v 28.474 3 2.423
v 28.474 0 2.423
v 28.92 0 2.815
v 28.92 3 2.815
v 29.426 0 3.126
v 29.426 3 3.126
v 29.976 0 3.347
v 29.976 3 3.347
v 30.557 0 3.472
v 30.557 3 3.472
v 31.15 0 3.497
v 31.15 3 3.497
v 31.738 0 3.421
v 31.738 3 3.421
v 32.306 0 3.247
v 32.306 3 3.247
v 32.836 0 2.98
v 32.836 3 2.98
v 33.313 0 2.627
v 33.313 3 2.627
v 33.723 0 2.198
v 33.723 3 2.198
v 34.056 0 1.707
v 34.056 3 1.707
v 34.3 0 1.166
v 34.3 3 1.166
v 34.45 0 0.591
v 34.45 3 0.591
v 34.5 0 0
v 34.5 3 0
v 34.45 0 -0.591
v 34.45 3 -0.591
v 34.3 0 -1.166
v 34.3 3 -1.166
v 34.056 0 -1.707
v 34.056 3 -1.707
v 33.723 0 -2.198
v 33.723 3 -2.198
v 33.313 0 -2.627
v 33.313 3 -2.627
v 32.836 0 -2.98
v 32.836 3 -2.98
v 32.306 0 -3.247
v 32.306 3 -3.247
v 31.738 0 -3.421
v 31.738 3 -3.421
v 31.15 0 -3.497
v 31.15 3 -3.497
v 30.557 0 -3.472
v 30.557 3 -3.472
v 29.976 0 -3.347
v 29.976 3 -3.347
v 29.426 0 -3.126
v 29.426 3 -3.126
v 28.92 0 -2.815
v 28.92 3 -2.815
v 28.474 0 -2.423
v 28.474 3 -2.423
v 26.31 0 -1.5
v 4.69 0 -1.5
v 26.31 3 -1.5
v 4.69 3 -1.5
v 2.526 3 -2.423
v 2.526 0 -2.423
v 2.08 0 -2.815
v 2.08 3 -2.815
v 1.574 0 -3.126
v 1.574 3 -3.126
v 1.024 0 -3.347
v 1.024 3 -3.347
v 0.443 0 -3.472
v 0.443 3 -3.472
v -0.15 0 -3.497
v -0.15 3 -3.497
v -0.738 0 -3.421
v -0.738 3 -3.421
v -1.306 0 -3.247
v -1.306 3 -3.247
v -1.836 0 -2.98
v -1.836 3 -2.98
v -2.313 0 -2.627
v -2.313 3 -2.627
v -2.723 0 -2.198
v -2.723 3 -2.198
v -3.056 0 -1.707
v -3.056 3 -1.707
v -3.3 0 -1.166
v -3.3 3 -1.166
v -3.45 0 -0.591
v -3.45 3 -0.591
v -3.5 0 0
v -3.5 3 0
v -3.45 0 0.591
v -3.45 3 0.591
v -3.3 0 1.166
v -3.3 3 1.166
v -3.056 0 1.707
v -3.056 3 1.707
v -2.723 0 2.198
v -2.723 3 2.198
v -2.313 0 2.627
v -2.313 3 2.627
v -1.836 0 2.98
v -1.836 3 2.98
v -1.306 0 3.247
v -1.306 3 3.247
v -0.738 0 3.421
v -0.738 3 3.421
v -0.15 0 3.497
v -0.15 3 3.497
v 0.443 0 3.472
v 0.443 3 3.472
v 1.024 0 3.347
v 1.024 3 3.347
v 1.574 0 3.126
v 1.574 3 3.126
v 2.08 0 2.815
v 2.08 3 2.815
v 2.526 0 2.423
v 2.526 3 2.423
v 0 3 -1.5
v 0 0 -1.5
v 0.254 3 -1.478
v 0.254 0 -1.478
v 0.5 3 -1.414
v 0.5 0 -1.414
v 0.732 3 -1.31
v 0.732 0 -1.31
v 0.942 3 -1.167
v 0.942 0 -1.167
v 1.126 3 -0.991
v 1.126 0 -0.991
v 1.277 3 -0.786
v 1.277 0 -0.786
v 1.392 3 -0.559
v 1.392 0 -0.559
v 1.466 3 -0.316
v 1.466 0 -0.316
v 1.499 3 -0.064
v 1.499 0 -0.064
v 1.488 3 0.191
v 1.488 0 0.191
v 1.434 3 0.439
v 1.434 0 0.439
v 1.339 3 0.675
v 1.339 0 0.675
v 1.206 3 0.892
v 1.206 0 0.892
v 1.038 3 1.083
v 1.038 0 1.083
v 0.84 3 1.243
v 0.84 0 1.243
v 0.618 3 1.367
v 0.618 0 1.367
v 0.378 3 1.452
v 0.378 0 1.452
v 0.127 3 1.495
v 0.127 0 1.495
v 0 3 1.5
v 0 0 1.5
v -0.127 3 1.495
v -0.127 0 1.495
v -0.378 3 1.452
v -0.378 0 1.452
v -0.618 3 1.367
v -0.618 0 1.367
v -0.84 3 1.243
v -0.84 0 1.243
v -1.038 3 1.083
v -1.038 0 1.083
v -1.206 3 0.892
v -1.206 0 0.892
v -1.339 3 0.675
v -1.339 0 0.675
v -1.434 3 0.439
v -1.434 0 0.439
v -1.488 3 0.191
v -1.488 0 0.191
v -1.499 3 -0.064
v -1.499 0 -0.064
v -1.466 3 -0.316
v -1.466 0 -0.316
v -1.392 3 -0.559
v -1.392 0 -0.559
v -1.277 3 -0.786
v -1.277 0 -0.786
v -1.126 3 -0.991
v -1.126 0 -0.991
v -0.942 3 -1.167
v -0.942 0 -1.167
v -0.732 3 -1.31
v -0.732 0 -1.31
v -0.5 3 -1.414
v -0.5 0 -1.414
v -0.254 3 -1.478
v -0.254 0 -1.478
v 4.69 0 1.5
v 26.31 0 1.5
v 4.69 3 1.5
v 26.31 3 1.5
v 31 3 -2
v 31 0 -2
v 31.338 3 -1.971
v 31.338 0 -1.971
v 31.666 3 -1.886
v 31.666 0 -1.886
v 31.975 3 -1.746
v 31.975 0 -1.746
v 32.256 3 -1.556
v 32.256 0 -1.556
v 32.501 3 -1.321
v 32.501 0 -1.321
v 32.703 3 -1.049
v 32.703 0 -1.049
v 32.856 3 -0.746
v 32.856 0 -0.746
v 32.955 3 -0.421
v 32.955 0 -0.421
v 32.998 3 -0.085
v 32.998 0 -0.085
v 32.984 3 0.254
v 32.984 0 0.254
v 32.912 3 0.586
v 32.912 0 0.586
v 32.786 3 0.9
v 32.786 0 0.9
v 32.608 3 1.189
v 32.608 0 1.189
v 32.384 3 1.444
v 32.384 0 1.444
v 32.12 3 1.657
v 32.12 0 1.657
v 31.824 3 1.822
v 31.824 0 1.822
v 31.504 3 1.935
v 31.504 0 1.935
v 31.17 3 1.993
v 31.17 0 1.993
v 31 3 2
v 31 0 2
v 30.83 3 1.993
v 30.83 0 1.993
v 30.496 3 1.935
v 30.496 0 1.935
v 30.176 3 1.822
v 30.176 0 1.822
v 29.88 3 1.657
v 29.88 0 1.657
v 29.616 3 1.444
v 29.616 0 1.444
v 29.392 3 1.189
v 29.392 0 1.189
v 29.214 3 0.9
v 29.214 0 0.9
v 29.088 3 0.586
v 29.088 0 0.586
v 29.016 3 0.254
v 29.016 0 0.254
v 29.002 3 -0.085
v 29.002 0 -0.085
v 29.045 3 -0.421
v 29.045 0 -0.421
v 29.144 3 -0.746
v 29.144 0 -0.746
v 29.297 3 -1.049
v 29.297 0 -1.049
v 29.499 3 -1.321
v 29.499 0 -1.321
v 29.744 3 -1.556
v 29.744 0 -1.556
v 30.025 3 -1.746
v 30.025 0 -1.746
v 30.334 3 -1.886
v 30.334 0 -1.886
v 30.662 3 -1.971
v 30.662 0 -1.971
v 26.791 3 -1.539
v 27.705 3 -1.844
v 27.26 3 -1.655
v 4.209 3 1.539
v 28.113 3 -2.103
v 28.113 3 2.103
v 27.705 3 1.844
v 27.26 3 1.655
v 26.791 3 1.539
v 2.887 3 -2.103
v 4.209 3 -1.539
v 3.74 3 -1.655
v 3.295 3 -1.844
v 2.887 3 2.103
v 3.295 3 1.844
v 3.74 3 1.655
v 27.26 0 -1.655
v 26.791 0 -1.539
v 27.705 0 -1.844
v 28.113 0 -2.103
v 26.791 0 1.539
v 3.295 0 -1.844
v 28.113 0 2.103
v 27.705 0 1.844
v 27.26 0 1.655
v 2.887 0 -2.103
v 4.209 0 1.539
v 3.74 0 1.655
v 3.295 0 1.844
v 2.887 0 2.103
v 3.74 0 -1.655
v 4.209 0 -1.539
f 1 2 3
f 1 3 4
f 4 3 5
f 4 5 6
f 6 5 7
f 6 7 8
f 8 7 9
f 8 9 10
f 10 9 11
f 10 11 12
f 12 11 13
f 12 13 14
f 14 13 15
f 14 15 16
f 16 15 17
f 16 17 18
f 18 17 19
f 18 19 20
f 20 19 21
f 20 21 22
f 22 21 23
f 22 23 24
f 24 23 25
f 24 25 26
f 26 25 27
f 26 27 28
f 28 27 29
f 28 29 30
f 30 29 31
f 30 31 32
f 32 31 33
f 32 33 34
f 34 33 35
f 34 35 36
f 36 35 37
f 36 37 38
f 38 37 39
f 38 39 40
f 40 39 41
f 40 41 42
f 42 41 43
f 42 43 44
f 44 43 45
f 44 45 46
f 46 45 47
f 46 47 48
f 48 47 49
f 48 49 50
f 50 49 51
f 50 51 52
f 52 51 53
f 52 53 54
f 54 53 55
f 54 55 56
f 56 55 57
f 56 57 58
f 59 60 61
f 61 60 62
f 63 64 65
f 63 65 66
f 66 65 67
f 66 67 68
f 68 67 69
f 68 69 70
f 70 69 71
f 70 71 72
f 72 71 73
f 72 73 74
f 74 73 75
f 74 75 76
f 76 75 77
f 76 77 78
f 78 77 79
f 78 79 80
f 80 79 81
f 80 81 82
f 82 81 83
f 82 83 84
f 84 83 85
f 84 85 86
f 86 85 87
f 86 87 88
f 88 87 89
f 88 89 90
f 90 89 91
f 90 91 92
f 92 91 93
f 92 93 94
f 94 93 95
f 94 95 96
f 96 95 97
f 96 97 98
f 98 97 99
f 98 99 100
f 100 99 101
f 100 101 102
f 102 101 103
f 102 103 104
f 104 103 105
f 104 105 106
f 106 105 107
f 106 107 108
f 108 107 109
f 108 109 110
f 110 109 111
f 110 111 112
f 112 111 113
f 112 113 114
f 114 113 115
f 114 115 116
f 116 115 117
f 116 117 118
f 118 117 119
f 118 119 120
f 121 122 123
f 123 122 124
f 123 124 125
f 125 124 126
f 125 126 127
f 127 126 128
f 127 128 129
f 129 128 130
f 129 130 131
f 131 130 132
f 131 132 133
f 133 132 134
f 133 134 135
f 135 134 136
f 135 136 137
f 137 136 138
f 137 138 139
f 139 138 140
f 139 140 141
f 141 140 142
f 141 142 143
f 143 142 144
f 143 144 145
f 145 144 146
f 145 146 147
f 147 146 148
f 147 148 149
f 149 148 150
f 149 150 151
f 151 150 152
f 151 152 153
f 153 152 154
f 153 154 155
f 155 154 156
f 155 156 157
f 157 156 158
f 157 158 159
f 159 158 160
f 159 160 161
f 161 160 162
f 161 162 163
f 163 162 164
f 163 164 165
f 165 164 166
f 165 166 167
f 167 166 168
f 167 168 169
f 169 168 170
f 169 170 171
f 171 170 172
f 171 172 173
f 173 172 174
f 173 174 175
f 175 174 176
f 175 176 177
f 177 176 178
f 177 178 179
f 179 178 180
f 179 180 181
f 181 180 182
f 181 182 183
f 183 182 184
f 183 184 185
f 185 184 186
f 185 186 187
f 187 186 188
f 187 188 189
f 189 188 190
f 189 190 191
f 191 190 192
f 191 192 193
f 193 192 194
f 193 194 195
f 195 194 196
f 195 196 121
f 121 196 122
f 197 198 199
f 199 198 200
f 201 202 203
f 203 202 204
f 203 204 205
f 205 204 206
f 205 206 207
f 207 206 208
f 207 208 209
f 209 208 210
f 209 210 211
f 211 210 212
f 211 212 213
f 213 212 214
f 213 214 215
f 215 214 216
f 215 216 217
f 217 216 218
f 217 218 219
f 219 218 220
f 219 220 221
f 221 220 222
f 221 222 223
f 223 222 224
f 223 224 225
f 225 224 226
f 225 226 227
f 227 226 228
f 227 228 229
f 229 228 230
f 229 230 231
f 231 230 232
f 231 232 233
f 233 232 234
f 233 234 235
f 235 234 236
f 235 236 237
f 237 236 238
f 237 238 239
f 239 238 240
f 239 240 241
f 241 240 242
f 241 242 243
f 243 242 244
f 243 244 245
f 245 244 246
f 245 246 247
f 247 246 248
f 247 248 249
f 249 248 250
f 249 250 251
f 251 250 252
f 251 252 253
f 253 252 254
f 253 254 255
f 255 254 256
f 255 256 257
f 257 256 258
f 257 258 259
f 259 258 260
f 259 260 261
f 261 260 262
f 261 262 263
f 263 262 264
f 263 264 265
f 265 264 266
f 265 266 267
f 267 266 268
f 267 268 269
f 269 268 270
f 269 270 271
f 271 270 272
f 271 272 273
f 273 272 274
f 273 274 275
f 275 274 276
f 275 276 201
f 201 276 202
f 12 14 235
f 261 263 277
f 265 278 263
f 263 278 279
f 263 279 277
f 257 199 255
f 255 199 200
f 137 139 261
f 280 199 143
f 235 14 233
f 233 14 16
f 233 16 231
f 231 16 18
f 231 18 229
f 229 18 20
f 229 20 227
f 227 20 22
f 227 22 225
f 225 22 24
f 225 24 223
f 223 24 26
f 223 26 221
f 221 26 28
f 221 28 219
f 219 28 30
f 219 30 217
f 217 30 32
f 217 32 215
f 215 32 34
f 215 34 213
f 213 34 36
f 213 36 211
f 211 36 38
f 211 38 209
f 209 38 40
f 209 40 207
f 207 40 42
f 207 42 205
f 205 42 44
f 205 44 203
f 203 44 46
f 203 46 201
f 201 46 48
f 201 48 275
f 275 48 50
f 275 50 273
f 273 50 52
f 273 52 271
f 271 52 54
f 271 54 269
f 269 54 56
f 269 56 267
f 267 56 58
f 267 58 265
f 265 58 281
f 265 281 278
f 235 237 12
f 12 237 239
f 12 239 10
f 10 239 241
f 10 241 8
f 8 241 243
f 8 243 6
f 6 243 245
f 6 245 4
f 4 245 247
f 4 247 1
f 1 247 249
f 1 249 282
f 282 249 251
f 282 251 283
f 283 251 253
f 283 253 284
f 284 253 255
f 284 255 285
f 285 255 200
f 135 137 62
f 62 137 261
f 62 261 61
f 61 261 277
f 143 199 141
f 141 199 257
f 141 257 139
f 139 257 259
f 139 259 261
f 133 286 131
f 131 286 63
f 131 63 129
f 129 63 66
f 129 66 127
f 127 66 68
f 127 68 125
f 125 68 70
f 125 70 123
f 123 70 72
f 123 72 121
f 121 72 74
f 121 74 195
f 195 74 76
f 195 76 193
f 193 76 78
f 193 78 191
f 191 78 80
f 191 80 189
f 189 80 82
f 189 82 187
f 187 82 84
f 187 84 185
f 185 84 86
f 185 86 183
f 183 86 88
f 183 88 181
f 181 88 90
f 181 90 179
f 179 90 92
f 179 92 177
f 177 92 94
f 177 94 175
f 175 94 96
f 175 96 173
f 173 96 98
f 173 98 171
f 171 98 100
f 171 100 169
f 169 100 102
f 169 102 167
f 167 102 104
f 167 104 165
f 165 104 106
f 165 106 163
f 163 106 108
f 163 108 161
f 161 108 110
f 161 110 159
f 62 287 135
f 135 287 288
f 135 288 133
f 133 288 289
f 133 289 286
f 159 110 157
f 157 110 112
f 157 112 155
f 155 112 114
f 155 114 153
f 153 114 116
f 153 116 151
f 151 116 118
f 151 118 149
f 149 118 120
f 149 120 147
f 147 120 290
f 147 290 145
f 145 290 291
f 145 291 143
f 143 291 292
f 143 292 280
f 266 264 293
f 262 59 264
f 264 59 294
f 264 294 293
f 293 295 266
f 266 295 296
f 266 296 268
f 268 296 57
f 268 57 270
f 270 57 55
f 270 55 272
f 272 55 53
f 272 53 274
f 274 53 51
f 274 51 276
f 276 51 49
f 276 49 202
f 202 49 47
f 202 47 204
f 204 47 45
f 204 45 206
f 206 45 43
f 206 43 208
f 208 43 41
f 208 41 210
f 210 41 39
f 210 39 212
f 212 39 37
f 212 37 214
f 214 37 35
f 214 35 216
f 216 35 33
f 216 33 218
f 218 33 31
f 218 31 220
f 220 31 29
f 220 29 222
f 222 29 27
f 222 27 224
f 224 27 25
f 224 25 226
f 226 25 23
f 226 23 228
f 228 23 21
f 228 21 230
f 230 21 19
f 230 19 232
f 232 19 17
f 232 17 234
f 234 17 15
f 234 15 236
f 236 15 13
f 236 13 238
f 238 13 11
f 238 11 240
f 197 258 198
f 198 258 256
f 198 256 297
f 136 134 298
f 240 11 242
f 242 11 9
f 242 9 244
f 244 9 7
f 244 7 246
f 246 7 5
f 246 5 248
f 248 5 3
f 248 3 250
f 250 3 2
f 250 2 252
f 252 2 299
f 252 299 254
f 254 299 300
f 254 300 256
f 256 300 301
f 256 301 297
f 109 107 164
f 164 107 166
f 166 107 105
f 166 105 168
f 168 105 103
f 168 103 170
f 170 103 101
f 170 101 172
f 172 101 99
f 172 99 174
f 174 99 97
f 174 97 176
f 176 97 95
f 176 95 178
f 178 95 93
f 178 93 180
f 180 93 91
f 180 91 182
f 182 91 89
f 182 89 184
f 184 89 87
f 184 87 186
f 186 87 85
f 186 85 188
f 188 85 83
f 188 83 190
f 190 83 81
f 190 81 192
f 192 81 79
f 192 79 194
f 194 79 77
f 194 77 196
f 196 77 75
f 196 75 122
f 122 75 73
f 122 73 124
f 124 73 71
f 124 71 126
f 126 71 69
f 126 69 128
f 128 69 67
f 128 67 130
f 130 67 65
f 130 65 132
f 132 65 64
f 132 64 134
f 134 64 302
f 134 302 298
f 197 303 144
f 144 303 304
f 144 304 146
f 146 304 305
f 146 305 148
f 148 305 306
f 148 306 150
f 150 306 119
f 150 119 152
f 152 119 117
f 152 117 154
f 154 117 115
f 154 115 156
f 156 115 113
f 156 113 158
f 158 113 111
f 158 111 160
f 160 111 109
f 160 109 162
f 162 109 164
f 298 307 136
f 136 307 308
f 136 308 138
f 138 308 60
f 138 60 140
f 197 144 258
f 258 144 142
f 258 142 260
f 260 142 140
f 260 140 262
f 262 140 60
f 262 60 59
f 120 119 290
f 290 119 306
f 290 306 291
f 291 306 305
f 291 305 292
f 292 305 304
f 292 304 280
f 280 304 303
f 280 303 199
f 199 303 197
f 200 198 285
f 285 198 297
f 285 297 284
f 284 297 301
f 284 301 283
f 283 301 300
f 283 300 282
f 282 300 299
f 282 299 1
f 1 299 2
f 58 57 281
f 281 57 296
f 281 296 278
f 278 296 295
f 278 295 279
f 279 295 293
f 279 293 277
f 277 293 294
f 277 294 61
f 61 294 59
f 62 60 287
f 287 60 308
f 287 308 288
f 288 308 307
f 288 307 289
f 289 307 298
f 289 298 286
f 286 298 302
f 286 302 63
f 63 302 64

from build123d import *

# Parameters (mm, degrees)
SKETCH1_R           = 1.5
SKETCH1_R_2         = 2
BOSS_EXTRUDE1_DEPTH = 3
FILLET1_R           = 3


with BuildPart() as part:
    # Sketch1 → Boss-Extrude1 (new body)
    with BuildSketch(Plane(origin=(0, 0, 0), x_dir=(1, 0, 0), z_dir=(0, 1, 0))):
        with BuildLine():
            ThreePointArc((3.16227766, 1.5), (-3.5, 0), (3.16227766, -1.5))
            Line((3.16227766, -1.5), (27.83772234, -1.5))
            ThreePointArc((27.83772234, -1.5), (34.5, 0), (27.83772234, 1.5))
            Line((27.83772234, 1.5), (3.16227766, 1.5))
        make_face()
        with Locations(Location((0, 0, 0), (0, 0, 270))):
            Circle(SKETCH1_R, mode=Mode.SUBTRACT)
        with Locations(Location((31, 0, 0), (0, 0, 270))):
            Circle(SKETCH1_R_2, mode=Mode.SUBTRACT)
    extrude(amount=BOSS_EXTRUDE1_DEPTH)

    # Fillet1
    fillet1_edges = [part.edges().sort_by_distance(p)[0] for p in [
        (27.83772234, 1.5, 1.5),
        (3.16227766, 1.5, 1.5),
        (3.16227766, 1.5, -1.5),
        (27.83772234, 1.5, -1.5),
    ]]
    fillet(fillet1_edges, radius=FILLET1_R)


solid = part.part
